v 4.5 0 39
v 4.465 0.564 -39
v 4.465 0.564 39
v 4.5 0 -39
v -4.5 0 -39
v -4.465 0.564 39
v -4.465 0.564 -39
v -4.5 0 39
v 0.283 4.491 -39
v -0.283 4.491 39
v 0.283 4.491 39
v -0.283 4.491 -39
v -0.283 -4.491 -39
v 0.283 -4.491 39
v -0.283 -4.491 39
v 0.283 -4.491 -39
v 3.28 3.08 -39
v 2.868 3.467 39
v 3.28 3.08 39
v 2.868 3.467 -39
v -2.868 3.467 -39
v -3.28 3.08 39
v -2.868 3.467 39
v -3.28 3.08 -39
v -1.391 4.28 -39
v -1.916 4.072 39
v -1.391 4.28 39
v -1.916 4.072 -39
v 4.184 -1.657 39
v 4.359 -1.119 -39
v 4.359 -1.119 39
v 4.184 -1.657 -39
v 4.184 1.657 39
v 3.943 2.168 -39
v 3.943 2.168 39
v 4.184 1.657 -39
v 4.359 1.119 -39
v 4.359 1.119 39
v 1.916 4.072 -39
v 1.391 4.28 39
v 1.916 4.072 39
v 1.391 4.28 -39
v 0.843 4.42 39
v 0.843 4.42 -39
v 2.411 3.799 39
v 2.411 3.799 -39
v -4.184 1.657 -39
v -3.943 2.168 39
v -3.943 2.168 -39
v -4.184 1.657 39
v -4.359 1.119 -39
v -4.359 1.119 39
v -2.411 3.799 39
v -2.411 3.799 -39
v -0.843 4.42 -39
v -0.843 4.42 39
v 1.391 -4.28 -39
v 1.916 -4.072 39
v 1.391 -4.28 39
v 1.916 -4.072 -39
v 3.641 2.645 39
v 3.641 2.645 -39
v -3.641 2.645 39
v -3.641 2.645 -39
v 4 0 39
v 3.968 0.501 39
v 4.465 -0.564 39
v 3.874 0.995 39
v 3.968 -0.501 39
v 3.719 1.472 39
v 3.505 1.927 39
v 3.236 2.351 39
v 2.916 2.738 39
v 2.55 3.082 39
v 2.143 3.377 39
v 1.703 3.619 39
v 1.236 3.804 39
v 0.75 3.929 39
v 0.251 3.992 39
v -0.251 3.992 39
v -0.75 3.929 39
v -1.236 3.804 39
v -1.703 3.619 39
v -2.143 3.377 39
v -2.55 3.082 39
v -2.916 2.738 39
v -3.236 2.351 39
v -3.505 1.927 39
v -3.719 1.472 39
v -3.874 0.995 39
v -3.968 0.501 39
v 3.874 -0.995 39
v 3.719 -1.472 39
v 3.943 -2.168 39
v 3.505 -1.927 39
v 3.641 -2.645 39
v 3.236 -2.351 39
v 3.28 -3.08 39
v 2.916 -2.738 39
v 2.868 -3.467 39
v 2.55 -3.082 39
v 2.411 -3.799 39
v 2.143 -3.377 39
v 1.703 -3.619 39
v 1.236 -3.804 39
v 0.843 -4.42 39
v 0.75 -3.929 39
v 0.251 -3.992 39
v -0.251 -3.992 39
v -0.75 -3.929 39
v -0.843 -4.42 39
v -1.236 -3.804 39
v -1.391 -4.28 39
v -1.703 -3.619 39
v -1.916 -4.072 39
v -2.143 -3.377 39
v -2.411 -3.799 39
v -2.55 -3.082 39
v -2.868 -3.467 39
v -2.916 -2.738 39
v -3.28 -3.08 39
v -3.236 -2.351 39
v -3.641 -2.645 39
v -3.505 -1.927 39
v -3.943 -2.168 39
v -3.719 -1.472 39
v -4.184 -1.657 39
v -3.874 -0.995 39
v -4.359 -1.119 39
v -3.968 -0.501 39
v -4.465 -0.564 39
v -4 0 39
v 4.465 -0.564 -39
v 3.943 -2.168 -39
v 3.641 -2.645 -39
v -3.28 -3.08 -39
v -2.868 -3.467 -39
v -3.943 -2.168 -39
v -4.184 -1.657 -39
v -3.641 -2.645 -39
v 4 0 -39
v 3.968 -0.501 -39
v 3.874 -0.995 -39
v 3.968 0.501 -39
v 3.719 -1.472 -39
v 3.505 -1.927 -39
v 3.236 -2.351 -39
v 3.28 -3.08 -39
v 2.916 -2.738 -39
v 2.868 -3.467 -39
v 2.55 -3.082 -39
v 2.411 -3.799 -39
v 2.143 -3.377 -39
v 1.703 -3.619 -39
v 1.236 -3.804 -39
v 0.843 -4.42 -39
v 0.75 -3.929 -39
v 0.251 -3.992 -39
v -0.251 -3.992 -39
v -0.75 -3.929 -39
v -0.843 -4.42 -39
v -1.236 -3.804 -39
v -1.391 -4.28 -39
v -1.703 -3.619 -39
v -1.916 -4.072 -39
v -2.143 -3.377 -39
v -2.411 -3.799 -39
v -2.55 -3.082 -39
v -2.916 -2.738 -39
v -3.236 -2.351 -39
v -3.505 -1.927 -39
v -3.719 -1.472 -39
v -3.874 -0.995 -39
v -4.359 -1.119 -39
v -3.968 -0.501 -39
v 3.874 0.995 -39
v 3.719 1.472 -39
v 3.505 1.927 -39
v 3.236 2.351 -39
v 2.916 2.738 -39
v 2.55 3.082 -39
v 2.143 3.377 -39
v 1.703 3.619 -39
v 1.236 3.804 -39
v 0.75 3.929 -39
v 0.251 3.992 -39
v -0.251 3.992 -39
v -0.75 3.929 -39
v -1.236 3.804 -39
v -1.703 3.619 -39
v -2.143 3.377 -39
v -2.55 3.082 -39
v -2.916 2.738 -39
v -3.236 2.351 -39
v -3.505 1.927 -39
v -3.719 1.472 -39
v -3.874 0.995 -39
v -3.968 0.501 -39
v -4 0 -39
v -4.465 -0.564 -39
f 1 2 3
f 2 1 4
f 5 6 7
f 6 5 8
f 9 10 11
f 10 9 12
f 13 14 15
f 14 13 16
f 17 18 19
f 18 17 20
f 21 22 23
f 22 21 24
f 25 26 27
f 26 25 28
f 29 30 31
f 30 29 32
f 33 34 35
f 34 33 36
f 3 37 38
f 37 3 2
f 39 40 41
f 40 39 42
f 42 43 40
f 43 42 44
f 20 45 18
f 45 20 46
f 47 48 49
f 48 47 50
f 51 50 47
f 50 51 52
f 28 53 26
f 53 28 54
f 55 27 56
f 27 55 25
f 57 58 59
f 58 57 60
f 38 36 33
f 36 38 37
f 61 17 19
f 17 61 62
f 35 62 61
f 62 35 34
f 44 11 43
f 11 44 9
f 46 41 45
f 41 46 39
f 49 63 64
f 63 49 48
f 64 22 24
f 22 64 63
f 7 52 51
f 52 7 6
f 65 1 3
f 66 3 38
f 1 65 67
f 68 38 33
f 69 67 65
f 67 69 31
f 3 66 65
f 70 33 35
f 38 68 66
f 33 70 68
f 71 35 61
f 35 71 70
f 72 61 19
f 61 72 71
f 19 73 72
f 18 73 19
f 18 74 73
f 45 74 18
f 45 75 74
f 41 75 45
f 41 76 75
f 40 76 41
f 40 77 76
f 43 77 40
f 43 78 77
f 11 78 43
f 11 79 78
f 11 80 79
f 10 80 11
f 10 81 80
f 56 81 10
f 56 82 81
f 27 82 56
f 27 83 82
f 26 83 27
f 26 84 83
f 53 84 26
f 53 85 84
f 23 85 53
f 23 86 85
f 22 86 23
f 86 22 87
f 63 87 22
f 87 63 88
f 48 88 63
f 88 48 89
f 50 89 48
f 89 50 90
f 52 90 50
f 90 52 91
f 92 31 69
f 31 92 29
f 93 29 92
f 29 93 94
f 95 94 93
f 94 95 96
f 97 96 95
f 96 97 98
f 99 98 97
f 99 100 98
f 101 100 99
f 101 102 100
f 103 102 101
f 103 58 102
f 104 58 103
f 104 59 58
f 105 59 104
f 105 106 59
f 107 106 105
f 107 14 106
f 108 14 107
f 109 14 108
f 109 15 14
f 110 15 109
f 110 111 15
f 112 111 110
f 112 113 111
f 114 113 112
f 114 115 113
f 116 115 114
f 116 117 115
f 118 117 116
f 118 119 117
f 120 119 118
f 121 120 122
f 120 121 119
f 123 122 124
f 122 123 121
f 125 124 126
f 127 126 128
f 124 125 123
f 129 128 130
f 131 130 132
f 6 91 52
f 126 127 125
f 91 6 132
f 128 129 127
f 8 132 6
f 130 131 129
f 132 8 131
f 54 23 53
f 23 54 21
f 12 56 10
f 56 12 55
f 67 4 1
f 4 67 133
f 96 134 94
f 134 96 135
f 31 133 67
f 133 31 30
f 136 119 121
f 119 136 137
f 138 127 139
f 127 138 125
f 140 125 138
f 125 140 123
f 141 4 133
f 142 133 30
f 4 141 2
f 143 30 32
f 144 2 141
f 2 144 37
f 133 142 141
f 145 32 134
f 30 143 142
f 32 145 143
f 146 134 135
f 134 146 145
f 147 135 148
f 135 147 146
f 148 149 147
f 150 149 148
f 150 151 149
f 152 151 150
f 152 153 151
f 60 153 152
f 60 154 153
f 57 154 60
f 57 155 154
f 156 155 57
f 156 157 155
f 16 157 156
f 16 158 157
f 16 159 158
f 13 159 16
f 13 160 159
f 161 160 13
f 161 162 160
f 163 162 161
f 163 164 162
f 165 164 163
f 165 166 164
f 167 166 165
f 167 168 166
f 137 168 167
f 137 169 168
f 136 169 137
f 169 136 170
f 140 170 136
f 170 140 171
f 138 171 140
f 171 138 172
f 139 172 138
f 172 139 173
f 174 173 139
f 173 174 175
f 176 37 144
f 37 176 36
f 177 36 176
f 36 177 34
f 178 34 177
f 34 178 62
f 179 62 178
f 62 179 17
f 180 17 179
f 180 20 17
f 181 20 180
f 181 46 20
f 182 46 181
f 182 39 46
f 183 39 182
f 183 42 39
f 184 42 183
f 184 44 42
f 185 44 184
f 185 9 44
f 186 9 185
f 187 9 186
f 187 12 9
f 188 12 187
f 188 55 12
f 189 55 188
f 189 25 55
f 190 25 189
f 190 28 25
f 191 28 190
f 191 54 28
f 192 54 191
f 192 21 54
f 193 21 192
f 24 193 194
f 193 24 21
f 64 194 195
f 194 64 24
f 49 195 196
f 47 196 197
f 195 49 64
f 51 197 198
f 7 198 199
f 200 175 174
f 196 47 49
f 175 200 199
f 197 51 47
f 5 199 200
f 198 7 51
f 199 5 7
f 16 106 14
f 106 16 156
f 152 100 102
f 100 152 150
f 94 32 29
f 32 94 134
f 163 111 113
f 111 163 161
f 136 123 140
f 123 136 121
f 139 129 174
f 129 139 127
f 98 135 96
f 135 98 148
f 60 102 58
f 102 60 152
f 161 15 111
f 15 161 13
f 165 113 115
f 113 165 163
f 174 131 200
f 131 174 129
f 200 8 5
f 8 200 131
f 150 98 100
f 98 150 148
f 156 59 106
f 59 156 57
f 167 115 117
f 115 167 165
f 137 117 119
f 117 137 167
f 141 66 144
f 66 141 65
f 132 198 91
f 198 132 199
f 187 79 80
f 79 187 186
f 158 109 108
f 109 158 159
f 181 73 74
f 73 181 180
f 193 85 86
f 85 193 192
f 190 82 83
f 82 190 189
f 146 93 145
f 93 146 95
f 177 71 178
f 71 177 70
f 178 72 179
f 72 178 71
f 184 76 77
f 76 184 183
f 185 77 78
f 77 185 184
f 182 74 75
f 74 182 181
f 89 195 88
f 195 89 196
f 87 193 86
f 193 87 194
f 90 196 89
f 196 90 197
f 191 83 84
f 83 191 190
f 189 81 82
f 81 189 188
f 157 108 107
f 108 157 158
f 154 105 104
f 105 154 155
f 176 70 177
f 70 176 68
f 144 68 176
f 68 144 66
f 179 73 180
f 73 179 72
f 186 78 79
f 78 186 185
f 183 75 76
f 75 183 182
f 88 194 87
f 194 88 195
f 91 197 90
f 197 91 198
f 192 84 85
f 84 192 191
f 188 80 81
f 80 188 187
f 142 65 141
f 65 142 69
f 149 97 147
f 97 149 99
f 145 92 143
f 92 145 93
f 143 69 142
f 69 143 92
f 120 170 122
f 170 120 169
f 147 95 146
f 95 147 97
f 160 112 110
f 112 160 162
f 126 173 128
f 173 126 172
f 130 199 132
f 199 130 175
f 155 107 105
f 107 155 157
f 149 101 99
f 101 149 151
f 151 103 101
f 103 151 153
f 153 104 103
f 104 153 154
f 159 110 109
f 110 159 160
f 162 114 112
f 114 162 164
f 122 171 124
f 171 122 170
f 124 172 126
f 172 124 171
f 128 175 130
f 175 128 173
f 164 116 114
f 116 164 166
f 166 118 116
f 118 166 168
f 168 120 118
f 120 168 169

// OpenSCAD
$fn = 50;


difference() {
	union() {
		translate(v = [0, 0, -39.0000000000]) {
			cylinder(h = 78, r = 4.5000000000);
		}
	}
	union() {
		translate(v = [0, 0, -100.0000000000]) {
			cylinder(h = 200, r = 4);
		}
	}
}
